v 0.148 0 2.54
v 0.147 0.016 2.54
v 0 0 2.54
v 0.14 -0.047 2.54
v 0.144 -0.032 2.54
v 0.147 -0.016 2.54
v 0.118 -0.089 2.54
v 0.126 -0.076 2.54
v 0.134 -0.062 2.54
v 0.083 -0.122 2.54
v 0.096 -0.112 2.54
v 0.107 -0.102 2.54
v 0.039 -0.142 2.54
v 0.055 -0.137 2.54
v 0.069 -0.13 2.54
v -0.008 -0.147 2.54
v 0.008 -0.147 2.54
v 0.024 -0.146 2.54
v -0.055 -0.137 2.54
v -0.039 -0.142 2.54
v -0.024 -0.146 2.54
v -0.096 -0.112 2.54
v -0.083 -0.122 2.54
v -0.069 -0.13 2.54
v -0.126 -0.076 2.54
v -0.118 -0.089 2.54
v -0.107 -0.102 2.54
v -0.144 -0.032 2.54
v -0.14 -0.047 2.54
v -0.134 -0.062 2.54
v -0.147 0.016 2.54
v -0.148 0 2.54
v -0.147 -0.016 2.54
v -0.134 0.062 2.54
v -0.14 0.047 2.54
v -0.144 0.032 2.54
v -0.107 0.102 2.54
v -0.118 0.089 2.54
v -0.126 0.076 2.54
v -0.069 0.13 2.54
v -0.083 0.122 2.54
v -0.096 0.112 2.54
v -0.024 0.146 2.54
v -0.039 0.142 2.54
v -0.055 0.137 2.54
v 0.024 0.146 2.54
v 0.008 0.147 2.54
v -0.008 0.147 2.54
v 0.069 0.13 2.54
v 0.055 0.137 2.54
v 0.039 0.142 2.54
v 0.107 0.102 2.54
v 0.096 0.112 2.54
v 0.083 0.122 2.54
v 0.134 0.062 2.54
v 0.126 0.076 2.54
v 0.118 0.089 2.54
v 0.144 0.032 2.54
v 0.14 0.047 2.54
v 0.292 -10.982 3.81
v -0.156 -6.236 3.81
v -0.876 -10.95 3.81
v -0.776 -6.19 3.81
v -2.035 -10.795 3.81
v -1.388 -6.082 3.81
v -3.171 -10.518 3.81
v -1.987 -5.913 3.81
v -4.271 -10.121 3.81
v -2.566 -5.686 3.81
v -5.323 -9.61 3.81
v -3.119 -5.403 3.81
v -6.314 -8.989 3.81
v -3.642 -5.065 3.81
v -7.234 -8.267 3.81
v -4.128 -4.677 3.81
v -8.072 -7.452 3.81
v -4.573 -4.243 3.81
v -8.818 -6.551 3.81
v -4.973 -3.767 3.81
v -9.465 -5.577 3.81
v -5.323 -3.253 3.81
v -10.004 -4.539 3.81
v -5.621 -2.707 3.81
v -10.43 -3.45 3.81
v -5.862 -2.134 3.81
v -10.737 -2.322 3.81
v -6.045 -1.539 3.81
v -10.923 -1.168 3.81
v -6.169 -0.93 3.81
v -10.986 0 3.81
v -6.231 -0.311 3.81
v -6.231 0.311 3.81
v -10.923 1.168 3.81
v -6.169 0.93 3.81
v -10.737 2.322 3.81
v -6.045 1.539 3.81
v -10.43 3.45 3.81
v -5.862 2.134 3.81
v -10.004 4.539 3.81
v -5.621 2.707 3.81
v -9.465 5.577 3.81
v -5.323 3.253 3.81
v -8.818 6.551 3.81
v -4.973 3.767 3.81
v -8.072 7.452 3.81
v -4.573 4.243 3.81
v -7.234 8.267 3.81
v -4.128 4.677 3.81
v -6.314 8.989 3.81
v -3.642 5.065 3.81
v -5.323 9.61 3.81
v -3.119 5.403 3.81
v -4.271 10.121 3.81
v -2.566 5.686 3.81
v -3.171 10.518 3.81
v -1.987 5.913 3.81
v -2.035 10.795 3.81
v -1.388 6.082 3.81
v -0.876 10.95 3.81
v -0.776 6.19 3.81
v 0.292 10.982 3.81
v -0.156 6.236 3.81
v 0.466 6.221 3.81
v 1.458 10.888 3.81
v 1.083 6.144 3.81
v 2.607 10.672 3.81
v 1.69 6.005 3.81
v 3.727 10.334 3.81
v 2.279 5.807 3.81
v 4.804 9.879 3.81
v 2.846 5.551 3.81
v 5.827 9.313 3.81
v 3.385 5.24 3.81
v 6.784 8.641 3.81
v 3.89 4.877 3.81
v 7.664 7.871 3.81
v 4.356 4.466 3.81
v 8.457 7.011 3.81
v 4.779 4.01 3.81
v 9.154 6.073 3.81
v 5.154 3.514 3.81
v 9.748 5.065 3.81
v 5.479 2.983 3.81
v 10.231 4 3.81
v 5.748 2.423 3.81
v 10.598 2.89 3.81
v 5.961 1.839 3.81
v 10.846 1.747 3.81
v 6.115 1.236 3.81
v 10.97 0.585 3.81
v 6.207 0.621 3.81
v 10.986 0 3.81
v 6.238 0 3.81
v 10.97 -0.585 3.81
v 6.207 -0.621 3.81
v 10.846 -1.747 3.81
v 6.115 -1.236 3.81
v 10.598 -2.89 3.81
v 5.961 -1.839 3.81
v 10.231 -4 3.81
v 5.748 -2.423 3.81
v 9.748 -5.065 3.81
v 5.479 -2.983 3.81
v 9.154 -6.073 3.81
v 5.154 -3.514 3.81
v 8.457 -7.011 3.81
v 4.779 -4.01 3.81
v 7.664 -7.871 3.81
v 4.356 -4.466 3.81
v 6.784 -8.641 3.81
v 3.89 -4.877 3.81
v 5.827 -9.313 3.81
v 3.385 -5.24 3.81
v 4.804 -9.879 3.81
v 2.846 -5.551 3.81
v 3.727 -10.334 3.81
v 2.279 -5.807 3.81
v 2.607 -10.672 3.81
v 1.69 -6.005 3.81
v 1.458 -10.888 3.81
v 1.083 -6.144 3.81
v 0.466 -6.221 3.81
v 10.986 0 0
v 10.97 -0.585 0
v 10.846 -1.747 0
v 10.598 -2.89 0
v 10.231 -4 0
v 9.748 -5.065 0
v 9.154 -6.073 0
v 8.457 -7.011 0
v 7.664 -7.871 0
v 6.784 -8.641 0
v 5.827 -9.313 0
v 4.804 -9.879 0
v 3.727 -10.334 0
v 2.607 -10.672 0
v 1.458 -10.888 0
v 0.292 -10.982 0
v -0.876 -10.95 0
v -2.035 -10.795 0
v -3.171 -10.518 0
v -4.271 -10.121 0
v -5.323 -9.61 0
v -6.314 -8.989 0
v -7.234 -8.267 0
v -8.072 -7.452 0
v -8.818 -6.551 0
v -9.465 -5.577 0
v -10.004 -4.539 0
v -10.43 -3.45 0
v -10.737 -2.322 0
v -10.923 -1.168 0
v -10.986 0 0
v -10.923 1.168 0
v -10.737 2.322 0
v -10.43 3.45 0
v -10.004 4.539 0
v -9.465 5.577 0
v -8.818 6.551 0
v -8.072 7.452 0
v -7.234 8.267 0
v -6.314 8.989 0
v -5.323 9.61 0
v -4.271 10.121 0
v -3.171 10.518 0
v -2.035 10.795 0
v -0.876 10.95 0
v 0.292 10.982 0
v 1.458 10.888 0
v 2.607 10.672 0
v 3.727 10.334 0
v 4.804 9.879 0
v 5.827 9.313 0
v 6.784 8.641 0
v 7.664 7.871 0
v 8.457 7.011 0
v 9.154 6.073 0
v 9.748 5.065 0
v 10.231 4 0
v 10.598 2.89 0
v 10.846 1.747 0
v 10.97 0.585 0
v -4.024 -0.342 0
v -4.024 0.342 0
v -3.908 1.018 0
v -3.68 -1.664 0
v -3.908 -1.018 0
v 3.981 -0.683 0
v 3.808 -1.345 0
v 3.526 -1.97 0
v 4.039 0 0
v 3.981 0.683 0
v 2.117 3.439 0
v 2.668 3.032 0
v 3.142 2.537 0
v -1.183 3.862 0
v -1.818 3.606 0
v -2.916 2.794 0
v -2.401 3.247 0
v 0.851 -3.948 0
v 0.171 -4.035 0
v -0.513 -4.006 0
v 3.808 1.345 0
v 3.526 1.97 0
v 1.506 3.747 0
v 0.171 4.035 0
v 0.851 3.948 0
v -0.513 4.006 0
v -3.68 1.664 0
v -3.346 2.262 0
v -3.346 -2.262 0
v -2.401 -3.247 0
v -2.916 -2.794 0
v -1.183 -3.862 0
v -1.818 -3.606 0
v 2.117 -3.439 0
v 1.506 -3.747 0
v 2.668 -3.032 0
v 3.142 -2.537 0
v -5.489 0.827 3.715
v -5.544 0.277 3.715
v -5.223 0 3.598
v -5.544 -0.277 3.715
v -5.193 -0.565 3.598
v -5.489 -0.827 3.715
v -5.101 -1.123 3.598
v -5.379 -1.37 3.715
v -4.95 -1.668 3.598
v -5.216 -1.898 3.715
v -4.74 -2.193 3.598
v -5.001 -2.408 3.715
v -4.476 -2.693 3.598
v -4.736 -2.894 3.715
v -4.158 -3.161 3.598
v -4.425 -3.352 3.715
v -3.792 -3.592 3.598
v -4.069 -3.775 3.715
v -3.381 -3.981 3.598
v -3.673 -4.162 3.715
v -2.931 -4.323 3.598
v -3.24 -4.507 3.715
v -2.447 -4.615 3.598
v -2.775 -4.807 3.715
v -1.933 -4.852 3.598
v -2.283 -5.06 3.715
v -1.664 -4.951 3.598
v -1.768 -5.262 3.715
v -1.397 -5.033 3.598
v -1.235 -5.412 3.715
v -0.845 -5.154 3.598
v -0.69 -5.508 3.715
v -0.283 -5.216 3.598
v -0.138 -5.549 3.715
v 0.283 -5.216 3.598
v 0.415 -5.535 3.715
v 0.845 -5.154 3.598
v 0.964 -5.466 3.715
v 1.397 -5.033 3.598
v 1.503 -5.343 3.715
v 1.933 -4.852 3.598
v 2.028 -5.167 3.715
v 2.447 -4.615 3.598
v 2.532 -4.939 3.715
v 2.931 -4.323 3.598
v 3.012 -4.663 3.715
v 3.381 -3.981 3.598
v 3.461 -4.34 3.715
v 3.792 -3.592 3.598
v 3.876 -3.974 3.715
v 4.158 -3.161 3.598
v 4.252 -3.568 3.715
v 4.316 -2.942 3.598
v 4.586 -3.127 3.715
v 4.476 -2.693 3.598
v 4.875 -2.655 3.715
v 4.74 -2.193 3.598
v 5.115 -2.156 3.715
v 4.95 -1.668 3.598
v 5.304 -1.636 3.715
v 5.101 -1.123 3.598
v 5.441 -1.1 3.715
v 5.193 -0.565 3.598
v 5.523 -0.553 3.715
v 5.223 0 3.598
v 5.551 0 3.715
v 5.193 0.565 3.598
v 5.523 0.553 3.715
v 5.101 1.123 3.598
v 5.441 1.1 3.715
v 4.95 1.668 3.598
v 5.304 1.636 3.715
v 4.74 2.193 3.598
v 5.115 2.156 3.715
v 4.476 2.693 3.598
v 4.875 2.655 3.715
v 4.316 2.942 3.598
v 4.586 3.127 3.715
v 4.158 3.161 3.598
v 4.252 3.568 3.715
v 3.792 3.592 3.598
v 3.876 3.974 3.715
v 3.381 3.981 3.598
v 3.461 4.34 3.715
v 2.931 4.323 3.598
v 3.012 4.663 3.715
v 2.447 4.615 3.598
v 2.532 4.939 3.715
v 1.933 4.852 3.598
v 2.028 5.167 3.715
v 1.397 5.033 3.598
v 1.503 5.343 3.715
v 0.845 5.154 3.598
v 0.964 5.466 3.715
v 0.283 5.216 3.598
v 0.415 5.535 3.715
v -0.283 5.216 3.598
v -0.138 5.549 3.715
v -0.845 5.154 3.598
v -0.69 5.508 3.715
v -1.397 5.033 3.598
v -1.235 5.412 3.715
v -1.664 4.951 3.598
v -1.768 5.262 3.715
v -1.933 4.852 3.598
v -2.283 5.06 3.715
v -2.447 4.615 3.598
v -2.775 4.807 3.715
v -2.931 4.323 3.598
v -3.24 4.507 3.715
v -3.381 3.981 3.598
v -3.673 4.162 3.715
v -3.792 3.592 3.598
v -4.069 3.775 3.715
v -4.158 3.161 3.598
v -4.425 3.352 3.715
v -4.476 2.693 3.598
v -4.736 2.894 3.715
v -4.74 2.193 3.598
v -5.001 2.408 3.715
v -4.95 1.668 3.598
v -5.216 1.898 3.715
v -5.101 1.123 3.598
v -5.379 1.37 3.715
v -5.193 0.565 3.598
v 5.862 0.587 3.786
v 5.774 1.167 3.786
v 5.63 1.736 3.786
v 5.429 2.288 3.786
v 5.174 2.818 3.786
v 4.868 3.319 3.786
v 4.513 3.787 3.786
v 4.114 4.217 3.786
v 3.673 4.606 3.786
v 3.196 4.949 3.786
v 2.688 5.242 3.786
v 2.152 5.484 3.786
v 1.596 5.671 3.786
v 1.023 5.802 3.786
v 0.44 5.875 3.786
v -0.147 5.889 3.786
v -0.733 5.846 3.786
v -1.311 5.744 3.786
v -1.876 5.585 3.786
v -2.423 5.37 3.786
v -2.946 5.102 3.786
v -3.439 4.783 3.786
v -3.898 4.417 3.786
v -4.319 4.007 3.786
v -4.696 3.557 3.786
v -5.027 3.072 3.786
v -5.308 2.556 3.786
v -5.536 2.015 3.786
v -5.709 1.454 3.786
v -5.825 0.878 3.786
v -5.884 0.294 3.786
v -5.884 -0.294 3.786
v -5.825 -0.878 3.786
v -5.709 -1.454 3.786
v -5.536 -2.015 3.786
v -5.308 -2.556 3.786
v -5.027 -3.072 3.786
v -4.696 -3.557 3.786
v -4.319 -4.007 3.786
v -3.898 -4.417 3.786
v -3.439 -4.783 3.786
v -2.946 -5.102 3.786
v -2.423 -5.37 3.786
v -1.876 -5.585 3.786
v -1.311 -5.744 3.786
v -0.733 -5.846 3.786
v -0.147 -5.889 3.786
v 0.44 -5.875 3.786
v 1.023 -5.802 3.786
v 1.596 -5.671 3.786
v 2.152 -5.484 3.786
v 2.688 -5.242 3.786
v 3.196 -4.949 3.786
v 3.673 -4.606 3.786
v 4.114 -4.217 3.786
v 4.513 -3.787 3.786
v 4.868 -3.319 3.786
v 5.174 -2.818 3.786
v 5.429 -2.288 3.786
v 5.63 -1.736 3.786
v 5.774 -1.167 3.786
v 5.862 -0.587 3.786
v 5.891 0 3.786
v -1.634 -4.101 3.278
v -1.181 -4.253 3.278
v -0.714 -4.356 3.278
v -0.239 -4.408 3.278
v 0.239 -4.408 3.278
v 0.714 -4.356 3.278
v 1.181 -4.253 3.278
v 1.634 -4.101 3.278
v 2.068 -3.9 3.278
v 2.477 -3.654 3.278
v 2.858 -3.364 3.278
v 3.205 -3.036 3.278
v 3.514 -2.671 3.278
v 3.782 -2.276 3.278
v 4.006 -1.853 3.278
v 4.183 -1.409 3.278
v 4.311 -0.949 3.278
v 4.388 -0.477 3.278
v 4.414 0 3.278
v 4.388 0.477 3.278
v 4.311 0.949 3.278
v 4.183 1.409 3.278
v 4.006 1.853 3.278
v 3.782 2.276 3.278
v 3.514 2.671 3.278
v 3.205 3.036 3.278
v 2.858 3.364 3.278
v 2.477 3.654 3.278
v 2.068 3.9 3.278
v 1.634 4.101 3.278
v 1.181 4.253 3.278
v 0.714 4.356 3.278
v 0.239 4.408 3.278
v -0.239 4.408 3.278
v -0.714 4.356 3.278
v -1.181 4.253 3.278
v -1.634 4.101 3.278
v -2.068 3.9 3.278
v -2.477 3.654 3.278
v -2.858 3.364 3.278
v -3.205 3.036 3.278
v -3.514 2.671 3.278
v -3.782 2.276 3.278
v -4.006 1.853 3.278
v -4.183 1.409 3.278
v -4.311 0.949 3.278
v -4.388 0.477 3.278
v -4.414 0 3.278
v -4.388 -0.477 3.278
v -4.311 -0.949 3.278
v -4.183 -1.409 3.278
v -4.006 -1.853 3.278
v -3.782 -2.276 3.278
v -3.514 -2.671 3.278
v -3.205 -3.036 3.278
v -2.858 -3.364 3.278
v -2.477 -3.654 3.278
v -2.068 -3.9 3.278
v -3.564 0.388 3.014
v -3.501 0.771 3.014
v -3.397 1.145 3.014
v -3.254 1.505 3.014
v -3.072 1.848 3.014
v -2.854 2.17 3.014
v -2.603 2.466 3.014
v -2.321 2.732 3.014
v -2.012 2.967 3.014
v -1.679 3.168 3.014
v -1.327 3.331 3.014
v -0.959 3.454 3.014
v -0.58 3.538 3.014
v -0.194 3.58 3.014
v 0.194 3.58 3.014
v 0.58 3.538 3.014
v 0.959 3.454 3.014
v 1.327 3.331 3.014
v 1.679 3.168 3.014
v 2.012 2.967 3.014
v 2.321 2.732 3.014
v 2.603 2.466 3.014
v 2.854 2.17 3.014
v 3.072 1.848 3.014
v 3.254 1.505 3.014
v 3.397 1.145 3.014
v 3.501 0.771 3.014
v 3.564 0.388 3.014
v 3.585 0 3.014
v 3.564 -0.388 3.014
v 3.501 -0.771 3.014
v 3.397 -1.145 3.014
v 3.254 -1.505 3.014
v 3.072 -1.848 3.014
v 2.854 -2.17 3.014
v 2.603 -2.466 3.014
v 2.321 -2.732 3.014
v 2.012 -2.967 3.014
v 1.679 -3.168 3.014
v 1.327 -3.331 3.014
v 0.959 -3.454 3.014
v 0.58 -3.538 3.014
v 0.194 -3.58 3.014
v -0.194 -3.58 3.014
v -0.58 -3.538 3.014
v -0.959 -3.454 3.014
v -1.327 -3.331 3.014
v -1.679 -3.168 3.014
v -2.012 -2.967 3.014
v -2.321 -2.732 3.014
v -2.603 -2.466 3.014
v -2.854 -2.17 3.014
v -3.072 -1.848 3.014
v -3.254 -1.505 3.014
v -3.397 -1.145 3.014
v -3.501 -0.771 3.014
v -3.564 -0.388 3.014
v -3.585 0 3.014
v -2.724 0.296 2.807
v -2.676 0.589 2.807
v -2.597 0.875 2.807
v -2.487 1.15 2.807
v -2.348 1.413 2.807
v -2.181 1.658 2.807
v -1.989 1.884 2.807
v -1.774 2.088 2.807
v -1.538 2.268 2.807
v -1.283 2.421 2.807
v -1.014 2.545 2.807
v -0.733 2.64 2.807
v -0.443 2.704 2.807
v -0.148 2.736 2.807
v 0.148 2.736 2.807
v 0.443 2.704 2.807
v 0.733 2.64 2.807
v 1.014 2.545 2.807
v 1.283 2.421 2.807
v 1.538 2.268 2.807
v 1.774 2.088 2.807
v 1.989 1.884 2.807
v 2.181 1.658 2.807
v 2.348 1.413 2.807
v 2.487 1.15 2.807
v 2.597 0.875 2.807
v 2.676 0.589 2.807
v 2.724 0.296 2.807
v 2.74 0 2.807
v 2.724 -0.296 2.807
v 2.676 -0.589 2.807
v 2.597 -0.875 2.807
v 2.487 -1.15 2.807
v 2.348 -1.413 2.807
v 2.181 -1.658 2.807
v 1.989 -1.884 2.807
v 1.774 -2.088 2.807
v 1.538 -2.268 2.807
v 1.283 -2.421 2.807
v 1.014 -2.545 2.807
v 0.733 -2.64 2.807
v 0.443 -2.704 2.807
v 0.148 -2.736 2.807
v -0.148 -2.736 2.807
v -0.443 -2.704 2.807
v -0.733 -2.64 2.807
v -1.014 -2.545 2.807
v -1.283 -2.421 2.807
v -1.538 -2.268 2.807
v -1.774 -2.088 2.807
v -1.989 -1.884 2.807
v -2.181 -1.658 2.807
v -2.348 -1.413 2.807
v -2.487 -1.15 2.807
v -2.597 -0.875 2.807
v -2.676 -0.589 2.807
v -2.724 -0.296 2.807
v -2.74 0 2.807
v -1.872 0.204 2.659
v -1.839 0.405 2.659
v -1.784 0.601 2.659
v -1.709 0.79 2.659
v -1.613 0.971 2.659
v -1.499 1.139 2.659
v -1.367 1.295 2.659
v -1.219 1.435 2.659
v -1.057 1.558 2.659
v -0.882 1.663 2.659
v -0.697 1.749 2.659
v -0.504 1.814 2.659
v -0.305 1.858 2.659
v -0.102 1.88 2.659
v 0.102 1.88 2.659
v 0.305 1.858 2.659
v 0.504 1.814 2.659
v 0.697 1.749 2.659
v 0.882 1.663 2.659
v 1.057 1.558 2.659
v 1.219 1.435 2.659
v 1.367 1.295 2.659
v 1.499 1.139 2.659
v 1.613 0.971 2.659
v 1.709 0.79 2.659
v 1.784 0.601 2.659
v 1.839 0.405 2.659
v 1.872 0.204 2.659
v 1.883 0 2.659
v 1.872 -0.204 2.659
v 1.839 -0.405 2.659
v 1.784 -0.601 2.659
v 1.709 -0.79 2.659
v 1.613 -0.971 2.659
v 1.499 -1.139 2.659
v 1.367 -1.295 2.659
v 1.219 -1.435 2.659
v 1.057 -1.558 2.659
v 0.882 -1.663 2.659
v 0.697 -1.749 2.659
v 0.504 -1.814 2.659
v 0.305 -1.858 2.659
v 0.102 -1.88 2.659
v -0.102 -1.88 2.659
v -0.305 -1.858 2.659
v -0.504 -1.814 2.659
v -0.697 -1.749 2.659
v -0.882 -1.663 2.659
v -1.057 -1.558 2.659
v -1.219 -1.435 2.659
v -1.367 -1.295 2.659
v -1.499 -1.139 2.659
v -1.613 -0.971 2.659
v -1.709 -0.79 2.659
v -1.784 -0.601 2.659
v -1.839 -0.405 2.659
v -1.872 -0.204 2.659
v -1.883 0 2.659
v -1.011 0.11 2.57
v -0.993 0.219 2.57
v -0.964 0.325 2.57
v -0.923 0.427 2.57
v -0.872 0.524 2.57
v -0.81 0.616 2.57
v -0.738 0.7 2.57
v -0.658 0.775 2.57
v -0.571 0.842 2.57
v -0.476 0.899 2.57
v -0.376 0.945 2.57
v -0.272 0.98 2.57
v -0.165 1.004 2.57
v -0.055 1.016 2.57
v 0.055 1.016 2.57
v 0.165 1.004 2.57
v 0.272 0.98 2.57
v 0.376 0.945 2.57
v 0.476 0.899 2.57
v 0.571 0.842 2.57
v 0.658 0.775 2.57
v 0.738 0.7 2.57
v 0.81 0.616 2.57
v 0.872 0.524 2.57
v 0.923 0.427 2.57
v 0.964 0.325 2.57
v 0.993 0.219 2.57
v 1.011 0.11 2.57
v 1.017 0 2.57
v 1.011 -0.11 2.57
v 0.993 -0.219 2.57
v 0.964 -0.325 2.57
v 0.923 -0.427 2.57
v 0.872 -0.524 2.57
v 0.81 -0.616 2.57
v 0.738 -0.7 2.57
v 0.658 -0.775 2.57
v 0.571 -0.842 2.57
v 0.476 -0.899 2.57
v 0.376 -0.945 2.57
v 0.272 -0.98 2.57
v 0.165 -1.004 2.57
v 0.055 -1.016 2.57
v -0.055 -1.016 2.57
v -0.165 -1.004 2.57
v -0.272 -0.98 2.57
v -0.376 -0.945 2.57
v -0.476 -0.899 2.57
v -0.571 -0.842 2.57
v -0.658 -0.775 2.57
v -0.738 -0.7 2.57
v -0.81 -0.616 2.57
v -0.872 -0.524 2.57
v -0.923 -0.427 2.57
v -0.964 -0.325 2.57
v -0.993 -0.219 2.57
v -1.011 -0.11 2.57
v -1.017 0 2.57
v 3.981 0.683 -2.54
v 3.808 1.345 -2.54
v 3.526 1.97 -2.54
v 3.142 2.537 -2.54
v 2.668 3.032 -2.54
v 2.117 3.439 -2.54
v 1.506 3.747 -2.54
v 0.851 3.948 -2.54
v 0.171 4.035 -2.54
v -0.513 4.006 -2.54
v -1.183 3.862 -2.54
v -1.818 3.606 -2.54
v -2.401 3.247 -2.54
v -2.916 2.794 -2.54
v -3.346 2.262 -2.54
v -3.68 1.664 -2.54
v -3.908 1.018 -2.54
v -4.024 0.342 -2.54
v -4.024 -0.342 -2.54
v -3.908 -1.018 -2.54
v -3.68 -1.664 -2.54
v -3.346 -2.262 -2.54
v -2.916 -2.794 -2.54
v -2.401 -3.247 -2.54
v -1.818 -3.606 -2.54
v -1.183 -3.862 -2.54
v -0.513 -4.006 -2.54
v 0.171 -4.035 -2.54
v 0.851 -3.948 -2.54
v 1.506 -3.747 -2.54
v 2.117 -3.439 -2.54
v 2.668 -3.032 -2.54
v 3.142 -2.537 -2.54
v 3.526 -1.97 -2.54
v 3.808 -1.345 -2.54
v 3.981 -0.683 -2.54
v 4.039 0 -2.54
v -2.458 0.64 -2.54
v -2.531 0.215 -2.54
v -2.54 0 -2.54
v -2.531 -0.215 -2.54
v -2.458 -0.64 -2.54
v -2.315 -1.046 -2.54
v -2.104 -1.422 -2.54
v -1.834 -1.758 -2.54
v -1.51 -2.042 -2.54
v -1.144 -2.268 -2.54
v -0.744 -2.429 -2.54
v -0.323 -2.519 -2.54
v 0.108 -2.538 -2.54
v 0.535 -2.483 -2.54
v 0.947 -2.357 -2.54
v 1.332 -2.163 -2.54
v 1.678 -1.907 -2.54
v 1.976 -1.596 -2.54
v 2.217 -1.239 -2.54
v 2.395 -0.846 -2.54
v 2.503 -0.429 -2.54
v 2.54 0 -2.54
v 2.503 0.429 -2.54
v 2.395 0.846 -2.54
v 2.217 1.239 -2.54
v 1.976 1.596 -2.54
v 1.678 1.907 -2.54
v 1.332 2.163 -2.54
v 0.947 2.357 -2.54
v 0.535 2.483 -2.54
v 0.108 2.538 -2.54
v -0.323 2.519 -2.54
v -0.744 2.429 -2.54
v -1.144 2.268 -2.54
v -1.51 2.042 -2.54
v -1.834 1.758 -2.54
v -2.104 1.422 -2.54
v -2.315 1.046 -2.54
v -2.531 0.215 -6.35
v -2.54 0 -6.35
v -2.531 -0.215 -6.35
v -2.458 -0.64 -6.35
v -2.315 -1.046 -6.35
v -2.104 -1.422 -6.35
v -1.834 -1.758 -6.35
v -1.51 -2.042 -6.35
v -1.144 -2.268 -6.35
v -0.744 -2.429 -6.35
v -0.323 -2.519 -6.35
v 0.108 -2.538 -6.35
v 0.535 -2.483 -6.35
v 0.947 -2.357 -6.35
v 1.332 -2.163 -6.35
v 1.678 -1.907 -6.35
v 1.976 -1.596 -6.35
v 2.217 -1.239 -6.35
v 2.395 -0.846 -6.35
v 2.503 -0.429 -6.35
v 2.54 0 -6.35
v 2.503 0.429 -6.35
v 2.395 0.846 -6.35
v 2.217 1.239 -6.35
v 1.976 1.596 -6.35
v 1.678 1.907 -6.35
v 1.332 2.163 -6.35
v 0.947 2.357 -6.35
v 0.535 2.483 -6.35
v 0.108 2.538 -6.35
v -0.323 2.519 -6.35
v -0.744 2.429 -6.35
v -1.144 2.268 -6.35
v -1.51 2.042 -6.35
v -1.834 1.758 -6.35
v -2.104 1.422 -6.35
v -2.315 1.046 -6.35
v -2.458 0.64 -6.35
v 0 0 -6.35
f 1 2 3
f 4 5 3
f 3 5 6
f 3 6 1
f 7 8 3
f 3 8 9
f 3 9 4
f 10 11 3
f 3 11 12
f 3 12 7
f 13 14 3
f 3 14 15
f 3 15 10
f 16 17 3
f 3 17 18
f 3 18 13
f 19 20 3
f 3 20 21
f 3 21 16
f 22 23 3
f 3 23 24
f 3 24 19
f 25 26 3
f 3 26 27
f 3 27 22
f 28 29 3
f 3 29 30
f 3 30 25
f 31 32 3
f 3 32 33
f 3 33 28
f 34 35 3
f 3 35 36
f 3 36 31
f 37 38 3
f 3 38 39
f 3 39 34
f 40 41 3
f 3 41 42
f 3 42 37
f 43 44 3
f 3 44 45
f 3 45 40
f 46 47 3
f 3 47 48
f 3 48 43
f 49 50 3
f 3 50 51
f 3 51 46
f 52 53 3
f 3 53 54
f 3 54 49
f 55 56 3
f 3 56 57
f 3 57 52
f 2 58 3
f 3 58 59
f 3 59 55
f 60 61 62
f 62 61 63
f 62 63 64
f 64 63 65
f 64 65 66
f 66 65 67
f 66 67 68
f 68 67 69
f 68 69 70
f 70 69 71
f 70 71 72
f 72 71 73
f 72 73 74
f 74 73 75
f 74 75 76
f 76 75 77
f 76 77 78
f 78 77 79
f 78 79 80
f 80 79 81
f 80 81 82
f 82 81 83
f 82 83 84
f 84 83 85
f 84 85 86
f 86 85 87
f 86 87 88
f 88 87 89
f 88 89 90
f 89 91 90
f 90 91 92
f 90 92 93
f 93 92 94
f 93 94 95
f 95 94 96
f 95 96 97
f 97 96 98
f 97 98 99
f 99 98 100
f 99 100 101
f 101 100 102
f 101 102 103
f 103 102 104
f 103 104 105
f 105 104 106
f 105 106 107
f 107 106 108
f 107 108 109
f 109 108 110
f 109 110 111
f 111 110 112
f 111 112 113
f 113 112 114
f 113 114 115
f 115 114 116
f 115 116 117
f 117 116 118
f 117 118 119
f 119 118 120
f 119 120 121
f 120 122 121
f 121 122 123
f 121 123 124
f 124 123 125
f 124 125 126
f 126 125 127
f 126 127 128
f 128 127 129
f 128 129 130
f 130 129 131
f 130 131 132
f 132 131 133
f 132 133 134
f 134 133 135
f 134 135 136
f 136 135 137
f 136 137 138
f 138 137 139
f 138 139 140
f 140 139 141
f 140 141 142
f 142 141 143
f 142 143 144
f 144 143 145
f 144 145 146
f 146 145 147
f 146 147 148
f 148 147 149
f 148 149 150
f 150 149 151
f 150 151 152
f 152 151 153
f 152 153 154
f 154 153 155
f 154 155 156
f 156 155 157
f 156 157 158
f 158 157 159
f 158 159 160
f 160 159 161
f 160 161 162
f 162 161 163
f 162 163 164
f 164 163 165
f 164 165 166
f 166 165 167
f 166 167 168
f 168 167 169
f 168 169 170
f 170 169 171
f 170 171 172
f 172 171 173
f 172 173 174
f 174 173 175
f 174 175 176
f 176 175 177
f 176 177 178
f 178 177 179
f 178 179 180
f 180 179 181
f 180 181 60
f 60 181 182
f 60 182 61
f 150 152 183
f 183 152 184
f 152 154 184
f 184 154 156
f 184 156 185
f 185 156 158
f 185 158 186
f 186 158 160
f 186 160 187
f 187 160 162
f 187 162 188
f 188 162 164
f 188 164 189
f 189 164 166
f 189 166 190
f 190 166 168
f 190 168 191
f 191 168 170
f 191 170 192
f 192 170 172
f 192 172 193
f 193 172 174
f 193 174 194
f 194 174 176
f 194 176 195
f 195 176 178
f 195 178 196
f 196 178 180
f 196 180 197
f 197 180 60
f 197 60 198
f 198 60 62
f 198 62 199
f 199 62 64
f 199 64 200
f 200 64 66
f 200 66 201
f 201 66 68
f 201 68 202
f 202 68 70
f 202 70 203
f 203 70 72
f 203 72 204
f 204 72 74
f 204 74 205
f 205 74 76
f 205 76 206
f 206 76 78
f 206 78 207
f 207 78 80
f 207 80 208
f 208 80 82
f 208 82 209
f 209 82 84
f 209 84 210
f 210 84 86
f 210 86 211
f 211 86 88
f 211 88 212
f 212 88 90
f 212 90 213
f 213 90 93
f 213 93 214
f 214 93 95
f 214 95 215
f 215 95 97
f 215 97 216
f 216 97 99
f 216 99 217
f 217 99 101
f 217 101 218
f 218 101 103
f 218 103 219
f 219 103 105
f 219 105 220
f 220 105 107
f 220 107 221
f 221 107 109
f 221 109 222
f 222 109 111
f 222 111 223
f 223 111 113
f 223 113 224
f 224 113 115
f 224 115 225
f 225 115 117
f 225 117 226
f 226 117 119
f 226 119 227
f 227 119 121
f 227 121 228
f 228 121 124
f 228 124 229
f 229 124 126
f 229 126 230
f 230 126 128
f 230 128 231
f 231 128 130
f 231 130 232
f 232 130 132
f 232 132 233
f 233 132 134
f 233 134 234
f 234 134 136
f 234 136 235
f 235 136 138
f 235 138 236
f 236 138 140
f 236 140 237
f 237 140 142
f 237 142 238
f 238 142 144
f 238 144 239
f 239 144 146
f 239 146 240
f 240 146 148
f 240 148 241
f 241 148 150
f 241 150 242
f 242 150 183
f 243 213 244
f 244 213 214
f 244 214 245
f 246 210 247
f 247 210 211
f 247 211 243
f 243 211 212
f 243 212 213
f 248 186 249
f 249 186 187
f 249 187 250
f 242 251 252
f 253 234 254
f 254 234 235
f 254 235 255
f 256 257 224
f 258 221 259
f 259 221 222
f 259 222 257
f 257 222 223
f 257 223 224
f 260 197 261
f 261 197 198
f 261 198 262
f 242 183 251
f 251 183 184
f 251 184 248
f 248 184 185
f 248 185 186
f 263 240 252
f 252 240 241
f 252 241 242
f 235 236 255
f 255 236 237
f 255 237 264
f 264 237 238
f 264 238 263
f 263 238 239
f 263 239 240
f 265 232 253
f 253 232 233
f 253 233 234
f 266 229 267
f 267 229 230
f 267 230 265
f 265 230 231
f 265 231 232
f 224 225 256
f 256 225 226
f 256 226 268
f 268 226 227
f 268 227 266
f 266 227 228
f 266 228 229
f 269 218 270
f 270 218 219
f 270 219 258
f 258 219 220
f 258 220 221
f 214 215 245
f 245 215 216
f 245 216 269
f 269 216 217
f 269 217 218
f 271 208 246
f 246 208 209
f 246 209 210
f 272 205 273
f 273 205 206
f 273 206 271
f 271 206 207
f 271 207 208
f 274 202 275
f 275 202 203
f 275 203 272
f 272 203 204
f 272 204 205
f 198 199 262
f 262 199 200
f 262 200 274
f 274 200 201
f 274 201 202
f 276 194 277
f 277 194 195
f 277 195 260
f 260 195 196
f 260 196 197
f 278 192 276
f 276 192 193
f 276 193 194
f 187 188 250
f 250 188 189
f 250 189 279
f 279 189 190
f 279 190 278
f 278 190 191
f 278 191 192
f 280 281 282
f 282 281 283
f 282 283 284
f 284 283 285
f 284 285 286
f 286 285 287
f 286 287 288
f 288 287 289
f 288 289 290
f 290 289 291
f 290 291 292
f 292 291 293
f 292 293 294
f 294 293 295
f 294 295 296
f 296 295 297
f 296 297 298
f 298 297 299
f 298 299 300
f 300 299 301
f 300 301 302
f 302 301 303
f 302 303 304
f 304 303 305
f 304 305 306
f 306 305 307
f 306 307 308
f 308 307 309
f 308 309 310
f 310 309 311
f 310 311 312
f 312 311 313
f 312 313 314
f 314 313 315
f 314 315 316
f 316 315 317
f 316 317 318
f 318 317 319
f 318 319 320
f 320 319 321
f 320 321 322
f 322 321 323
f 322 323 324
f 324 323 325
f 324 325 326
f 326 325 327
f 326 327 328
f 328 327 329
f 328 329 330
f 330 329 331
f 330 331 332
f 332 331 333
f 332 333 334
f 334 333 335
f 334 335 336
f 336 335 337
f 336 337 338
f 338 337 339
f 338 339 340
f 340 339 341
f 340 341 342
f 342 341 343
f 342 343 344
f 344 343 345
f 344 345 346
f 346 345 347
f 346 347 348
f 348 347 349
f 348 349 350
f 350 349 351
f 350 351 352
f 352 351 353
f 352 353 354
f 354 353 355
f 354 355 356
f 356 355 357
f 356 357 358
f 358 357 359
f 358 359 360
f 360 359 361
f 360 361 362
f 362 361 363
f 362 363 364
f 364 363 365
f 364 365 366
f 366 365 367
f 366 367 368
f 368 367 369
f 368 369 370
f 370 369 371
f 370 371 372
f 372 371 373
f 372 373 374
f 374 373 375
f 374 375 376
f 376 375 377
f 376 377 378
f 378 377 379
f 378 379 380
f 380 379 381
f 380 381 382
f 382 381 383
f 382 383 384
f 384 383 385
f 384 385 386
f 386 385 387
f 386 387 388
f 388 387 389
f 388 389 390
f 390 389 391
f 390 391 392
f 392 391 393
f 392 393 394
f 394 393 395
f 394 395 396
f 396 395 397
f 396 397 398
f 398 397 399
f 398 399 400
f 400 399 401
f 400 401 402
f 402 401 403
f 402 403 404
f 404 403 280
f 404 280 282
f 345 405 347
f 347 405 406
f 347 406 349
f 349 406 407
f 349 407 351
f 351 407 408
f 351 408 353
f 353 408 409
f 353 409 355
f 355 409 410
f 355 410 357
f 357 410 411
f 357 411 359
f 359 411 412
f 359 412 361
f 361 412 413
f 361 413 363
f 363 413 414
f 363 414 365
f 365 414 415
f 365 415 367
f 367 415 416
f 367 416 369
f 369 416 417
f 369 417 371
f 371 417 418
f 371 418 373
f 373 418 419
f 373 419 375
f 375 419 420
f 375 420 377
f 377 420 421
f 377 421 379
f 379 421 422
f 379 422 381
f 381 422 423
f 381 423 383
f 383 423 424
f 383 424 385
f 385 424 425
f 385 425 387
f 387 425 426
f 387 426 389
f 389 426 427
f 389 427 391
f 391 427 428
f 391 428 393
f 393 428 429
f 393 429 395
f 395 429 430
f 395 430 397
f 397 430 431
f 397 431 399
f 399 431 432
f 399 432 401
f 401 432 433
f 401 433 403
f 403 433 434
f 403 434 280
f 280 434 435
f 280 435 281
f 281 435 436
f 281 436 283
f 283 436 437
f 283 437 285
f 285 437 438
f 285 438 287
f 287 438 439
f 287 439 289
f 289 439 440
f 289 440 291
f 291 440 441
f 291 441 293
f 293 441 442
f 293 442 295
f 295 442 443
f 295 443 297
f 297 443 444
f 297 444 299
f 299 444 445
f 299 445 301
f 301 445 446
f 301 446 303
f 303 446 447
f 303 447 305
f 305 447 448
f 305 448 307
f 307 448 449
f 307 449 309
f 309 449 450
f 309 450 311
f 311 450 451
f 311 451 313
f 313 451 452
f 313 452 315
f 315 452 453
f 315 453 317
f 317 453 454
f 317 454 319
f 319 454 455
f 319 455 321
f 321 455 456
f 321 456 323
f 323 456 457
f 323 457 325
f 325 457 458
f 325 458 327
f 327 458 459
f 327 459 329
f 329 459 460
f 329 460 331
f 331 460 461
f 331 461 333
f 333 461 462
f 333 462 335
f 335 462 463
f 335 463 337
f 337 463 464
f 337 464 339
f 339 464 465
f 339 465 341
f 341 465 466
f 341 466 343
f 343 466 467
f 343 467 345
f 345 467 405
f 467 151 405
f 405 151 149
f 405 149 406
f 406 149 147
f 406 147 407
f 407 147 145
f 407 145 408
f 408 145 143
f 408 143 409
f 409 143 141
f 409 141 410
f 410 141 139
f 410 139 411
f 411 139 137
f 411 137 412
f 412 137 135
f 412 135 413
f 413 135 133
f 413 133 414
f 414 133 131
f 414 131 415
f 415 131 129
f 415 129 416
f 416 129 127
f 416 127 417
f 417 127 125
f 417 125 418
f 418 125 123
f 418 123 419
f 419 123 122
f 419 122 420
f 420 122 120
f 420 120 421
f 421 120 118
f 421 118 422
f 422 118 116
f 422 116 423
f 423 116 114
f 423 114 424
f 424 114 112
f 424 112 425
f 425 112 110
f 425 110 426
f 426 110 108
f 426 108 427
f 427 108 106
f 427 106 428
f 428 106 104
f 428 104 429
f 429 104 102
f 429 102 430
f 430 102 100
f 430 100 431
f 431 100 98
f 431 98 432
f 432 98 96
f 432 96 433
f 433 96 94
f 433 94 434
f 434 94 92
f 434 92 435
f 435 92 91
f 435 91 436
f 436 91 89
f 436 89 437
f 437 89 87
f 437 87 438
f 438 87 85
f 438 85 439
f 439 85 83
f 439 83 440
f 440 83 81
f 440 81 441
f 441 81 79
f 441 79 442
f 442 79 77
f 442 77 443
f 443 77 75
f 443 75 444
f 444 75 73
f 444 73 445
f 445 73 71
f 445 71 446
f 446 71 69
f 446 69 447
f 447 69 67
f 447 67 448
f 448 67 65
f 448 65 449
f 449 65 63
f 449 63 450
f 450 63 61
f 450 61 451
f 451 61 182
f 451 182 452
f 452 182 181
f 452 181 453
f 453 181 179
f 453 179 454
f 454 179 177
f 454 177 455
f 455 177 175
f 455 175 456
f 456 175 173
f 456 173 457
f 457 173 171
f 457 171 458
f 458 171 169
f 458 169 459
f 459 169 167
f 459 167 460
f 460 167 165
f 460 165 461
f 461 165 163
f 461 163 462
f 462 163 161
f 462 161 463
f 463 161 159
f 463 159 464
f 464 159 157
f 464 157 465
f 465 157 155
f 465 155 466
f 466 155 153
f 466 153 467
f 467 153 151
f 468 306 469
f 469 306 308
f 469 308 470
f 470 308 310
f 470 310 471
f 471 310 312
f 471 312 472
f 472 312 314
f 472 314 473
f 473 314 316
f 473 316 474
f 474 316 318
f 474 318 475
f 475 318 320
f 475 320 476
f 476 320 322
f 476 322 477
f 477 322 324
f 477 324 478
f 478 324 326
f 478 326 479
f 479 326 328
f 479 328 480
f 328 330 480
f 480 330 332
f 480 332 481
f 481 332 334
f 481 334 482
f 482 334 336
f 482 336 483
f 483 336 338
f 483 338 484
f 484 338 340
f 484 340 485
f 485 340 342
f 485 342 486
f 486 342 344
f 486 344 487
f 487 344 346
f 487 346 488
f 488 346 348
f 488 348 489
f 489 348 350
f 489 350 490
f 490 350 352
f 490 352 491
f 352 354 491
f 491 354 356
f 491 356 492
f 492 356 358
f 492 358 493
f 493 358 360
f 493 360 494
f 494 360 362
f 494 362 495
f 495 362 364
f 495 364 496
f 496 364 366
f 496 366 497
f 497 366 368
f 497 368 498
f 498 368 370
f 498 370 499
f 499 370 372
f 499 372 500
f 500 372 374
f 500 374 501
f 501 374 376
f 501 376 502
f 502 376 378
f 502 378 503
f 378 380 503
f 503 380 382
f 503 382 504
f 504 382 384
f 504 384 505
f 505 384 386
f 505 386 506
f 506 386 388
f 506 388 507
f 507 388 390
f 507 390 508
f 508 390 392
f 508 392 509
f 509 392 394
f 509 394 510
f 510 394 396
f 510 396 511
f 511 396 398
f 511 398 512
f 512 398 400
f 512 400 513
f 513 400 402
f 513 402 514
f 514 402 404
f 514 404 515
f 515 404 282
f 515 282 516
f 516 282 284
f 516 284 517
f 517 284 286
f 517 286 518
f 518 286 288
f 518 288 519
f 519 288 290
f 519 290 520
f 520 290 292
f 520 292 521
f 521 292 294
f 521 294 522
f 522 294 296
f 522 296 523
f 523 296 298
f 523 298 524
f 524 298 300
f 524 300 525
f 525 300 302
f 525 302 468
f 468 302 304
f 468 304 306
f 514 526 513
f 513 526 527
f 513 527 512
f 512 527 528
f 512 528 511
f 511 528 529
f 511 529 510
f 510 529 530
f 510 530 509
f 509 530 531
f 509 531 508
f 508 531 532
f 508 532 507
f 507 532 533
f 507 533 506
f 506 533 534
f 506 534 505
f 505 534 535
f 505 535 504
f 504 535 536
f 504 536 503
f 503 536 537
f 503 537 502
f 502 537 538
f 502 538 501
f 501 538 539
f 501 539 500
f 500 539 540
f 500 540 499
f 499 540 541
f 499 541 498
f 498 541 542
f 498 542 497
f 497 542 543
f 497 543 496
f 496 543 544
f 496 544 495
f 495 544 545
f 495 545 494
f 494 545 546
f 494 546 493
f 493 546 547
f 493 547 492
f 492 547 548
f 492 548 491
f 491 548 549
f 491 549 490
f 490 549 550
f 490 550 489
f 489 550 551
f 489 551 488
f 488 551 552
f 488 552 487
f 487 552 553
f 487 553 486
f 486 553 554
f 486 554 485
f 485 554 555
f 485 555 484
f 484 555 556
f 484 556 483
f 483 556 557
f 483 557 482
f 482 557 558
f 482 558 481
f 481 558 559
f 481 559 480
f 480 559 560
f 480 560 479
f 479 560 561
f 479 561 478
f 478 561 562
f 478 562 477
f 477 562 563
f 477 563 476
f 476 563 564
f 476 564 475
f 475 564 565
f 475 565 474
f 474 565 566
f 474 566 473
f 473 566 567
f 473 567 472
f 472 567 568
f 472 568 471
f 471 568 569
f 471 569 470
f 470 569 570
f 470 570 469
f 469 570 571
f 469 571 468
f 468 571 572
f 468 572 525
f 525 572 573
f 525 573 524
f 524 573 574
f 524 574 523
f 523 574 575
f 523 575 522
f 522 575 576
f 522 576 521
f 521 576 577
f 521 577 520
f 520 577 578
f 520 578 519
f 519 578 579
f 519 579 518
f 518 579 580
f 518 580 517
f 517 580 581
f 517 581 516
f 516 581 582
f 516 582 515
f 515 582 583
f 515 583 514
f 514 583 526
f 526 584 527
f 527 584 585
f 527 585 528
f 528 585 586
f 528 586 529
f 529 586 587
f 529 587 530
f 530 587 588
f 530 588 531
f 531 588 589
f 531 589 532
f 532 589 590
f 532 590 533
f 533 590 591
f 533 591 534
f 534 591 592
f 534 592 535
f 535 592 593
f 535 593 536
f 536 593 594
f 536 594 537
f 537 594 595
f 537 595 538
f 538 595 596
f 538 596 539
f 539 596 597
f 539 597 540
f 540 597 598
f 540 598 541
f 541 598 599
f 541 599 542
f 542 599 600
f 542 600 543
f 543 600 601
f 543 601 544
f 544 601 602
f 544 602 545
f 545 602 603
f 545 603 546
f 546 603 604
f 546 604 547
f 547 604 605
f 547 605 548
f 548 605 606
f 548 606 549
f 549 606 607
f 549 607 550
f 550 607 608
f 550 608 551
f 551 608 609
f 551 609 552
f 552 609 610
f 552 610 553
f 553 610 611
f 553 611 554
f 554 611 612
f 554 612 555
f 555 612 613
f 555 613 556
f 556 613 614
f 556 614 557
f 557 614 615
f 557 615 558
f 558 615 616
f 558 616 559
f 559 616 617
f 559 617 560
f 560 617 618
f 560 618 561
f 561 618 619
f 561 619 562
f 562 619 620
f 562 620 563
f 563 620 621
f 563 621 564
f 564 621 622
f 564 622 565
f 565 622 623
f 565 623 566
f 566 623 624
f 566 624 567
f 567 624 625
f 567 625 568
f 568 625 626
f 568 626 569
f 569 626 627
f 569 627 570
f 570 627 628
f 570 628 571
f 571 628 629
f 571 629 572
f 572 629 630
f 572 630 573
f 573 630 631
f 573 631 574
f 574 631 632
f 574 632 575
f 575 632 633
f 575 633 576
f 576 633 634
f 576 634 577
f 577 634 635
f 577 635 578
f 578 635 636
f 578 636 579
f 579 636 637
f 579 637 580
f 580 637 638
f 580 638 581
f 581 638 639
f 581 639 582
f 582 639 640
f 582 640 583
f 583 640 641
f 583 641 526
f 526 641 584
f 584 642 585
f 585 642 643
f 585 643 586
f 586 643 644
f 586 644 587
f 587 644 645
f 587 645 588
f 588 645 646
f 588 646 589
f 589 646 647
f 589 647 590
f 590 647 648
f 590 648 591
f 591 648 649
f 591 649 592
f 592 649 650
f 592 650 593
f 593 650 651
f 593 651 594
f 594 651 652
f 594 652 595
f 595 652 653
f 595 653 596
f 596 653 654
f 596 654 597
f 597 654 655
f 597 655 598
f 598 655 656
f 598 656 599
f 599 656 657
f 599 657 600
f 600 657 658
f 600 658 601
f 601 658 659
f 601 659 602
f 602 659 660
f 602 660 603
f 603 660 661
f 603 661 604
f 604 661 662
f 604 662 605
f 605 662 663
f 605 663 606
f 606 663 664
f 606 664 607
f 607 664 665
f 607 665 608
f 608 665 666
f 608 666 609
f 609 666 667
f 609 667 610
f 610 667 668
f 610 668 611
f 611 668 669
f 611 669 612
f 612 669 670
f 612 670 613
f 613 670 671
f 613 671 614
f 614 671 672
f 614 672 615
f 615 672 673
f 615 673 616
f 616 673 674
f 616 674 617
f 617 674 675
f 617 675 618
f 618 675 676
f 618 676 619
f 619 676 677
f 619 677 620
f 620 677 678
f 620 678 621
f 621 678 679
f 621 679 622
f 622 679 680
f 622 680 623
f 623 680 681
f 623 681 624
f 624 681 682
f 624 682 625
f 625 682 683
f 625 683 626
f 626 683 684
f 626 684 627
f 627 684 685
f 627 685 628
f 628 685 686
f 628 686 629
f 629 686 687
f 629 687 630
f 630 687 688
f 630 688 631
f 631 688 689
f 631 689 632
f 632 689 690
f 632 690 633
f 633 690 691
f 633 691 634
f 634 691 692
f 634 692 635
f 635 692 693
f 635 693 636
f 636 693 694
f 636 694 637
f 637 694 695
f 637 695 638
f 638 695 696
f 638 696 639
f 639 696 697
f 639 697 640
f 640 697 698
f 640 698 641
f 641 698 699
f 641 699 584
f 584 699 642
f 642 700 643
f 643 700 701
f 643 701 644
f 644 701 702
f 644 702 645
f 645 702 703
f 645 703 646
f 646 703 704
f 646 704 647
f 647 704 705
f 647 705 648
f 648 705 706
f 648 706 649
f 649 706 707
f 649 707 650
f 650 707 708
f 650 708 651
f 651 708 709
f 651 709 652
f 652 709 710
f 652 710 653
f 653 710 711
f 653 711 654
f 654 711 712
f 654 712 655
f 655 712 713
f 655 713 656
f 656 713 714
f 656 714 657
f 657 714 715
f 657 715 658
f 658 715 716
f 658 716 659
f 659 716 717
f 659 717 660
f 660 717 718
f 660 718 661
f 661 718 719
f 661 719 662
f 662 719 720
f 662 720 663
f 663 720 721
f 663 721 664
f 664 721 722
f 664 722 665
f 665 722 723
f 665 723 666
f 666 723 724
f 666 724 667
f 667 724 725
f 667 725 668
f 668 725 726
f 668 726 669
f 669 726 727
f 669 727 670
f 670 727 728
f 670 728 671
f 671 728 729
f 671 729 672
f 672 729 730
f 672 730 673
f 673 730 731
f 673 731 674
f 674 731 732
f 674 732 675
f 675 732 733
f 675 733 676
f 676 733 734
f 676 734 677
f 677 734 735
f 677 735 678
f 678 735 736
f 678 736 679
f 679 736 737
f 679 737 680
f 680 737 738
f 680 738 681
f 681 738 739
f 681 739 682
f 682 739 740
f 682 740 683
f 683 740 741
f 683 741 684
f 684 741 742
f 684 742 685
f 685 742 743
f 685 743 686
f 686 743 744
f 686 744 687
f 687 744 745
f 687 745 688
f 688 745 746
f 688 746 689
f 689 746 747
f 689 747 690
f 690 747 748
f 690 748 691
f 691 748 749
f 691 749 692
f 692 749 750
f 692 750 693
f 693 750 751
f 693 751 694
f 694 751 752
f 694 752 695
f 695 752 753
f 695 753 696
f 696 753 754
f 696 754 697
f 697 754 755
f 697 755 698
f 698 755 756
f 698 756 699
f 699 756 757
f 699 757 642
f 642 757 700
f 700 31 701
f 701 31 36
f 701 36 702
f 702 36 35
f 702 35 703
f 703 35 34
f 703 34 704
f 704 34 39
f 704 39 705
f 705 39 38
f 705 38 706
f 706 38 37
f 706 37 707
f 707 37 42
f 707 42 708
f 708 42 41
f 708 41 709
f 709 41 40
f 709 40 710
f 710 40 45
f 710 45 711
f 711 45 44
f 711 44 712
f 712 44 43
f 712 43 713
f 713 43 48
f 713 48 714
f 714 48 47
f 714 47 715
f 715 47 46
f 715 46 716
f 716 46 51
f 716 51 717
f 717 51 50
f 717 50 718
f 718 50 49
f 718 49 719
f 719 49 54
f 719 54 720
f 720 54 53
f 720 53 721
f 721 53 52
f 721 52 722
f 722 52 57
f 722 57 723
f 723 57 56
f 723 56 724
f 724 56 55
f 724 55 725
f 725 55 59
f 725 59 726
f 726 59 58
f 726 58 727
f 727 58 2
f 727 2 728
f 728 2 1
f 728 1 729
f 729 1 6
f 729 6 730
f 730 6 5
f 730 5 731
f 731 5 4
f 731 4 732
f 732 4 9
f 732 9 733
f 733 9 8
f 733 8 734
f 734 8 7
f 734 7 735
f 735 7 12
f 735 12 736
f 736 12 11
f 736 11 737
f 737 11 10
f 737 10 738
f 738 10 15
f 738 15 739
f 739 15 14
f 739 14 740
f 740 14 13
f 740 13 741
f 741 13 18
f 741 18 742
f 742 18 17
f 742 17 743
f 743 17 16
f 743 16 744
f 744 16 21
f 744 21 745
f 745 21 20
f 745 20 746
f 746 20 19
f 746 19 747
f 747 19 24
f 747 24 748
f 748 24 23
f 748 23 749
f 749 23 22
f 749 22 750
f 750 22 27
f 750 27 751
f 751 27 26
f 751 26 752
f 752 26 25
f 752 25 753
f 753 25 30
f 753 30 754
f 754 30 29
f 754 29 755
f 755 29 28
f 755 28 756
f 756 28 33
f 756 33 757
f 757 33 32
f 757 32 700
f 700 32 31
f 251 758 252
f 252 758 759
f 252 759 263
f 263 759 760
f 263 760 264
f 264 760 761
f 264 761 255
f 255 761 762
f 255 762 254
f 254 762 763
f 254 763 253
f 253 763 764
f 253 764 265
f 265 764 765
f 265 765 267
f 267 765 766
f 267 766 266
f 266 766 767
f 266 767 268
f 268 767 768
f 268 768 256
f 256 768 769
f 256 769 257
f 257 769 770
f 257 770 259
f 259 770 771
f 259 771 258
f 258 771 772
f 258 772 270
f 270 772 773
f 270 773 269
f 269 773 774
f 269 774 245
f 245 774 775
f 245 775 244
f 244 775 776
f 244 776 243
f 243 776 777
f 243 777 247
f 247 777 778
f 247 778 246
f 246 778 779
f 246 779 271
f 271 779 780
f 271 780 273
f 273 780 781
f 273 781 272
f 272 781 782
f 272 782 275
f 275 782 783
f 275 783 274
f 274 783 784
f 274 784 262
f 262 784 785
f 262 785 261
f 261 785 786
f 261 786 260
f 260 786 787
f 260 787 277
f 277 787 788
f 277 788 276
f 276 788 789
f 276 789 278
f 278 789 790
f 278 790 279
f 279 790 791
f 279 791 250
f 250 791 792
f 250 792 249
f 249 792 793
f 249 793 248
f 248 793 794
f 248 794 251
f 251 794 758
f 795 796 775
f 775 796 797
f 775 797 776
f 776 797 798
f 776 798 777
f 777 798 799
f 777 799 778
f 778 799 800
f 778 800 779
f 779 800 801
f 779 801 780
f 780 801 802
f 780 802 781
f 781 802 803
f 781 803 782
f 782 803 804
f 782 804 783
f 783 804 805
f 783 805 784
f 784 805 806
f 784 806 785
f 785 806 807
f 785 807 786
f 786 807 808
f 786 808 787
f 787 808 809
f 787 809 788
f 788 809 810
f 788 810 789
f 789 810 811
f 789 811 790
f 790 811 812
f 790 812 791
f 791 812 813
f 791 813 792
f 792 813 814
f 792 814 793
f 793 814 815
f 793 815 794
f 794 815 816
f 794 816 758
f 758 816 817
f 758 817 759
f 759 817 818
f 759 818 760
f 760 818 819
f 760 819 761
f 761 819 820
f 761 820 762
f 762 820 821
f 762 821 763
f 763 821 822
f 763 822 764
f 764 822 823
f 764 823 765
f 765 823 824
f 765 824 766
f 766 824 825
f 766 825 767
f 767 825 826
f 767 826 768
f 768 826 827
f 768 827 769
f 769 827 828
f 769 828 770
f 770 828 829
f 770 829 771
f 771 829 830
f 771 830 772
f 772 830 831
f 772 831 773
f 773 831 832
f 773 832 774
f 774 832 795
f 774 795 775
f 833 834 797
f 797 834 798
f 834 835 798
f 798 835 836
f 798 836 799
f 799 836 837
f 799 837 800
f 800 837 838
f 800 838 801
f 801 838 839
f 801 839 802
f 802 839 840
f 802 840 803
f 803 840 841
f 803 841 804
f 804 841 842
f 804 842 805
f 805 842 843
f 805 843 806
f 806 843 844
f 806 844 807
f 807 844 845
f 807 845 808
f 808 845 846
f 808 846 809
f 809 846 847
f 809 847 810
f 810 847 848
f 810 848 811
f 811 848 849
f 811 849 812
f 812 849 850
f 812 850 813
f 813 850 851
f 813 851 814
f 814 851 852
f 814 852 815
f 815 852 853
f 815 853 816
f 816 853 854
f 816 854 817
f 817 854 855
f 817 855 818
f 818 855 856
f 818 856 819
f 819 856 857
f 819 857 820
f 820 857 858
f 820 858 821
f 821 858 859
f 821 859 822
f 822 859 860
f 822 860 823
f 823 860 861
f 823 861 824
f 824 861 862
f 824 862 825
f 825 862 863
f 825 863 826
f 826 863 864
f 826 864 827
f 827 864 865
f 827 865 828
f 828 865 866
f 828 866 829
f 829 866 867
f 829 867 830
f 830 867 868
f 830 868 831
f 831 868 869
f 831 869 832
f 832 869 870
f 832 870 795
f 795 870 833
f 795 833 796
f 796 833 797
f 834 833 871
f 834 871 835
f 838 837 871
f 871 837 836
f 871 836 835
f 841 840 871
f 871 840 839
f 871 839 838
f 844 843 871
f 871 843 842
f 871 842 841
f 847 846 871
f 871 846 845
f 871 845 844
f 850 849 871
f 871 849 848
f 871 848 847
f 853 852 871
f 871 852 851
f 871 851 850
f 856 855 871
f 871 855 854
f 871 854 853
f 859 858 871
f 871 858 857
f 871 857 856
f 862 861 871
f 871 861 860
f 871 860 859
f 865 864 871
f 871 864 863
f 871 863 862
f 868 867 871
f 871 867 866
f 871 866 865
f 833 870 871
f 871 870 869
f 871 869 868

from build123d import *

# Parameters (mm, degrees)
SKETCH1_R           = 4.0386
BOSS_EXTRUDE1_DEPTH = 2.54
SKETCH1_4_R         = 10.9855
SKETCH1_4_R_2       = 4.0386
BOSS_EXTRUDE2_DEPTH = 3.81
FILLET1_R           = 2.54
FILLET2_R           = 12.7
SKETCH1_6_R         = 4.0386
BOSS_EXTRUDE3_DEPTH = 2.54
SKETCH3_R           = 2.54
BOSS_EXTRUDE4_DEPTH = 3.81


with BuildPart() as part:
    # Sketch1 → Boss-Extrude1 (new body)
    with BuildSketch(Plane.XY):
        Circle(SKETCH1_R)
    extrude(amount=BOSS_EXTRUDE1_DEPTH)

    # Sketch1<4> → Boss-Extrude2 (add)
    with BuildSketch(Plane.XY):
        with Locations(Location((0, 0, 0), (0, 0, 180))):
            Circle(SKETCH1_4_R)
        with Locations(Location((0, 0, 0), (0, 0, 180))):
            Circle(SKETCH1_4_R_2, mode=Mode.SUBTRACT)
    extrude(amount=BOSS_EXTRUDE2_DEPTH)

    # Fillet1
    # the kernel refuses this fillet: 2.54 mm, written as the material it takes off along each edge
    with BuildSketch(Plane(origin=(0, 0, 3.81), x_dir=(-1, 0, 0), z_dir=(0, 1, 0))) as fillet1_piece_1:
        with BuildLine():
            CenterArc((6.238304526, -2.54), FILLET1_R, 90, 60)
            Line((4.0386, -1.27), (3.994605909, -1.2446))
            ThreePointArc((3.994605909, -1.2446), (3.9878, -0.635), (3.9878, 0))
            Line((3.9878, 0), (4.0386, 0.0508))
            Line((4.0386, 0.0508), (6.238304526, 0.0508))
            Line((6.238304526, 0.0508), (6.238304526, 0))
        make_face()
    revolve(axis=Axis((0, 0, 3.81), (0, 0, 1)), mode=Mode.SUBTRACT)

    # Fillet2
    fillet2_edges = [part.edges().sort_by_distance(p)[0] for p in [
        (4.0386, 0, 2.54),
    ]]
    fillet(fillet2_edges, radius=FILLET2_R)

    # Sketch1<6> → Boss-Extrude3 (add)
    with BuildSketch(Plane.XY):
        Circle(SKETCH1_6_R)
    extrude(amount=-BOSS_EXTRUDE3_DEPTH)

    # Sketch3 → Boss-Extrude4 (add)
    with BuildSketch(Plane(origin=(0, 0, -2.54), x_dir=(-1, 0, 0), z_dir=(0, 0, -1))):
        with Locations(Location((0, 0, 0), (0, 0, 180))):
            Circle(SKETCH3_R)
    extrude(amount=BOSS_EXTRUDE4_DEPTH)


solid = part.part
